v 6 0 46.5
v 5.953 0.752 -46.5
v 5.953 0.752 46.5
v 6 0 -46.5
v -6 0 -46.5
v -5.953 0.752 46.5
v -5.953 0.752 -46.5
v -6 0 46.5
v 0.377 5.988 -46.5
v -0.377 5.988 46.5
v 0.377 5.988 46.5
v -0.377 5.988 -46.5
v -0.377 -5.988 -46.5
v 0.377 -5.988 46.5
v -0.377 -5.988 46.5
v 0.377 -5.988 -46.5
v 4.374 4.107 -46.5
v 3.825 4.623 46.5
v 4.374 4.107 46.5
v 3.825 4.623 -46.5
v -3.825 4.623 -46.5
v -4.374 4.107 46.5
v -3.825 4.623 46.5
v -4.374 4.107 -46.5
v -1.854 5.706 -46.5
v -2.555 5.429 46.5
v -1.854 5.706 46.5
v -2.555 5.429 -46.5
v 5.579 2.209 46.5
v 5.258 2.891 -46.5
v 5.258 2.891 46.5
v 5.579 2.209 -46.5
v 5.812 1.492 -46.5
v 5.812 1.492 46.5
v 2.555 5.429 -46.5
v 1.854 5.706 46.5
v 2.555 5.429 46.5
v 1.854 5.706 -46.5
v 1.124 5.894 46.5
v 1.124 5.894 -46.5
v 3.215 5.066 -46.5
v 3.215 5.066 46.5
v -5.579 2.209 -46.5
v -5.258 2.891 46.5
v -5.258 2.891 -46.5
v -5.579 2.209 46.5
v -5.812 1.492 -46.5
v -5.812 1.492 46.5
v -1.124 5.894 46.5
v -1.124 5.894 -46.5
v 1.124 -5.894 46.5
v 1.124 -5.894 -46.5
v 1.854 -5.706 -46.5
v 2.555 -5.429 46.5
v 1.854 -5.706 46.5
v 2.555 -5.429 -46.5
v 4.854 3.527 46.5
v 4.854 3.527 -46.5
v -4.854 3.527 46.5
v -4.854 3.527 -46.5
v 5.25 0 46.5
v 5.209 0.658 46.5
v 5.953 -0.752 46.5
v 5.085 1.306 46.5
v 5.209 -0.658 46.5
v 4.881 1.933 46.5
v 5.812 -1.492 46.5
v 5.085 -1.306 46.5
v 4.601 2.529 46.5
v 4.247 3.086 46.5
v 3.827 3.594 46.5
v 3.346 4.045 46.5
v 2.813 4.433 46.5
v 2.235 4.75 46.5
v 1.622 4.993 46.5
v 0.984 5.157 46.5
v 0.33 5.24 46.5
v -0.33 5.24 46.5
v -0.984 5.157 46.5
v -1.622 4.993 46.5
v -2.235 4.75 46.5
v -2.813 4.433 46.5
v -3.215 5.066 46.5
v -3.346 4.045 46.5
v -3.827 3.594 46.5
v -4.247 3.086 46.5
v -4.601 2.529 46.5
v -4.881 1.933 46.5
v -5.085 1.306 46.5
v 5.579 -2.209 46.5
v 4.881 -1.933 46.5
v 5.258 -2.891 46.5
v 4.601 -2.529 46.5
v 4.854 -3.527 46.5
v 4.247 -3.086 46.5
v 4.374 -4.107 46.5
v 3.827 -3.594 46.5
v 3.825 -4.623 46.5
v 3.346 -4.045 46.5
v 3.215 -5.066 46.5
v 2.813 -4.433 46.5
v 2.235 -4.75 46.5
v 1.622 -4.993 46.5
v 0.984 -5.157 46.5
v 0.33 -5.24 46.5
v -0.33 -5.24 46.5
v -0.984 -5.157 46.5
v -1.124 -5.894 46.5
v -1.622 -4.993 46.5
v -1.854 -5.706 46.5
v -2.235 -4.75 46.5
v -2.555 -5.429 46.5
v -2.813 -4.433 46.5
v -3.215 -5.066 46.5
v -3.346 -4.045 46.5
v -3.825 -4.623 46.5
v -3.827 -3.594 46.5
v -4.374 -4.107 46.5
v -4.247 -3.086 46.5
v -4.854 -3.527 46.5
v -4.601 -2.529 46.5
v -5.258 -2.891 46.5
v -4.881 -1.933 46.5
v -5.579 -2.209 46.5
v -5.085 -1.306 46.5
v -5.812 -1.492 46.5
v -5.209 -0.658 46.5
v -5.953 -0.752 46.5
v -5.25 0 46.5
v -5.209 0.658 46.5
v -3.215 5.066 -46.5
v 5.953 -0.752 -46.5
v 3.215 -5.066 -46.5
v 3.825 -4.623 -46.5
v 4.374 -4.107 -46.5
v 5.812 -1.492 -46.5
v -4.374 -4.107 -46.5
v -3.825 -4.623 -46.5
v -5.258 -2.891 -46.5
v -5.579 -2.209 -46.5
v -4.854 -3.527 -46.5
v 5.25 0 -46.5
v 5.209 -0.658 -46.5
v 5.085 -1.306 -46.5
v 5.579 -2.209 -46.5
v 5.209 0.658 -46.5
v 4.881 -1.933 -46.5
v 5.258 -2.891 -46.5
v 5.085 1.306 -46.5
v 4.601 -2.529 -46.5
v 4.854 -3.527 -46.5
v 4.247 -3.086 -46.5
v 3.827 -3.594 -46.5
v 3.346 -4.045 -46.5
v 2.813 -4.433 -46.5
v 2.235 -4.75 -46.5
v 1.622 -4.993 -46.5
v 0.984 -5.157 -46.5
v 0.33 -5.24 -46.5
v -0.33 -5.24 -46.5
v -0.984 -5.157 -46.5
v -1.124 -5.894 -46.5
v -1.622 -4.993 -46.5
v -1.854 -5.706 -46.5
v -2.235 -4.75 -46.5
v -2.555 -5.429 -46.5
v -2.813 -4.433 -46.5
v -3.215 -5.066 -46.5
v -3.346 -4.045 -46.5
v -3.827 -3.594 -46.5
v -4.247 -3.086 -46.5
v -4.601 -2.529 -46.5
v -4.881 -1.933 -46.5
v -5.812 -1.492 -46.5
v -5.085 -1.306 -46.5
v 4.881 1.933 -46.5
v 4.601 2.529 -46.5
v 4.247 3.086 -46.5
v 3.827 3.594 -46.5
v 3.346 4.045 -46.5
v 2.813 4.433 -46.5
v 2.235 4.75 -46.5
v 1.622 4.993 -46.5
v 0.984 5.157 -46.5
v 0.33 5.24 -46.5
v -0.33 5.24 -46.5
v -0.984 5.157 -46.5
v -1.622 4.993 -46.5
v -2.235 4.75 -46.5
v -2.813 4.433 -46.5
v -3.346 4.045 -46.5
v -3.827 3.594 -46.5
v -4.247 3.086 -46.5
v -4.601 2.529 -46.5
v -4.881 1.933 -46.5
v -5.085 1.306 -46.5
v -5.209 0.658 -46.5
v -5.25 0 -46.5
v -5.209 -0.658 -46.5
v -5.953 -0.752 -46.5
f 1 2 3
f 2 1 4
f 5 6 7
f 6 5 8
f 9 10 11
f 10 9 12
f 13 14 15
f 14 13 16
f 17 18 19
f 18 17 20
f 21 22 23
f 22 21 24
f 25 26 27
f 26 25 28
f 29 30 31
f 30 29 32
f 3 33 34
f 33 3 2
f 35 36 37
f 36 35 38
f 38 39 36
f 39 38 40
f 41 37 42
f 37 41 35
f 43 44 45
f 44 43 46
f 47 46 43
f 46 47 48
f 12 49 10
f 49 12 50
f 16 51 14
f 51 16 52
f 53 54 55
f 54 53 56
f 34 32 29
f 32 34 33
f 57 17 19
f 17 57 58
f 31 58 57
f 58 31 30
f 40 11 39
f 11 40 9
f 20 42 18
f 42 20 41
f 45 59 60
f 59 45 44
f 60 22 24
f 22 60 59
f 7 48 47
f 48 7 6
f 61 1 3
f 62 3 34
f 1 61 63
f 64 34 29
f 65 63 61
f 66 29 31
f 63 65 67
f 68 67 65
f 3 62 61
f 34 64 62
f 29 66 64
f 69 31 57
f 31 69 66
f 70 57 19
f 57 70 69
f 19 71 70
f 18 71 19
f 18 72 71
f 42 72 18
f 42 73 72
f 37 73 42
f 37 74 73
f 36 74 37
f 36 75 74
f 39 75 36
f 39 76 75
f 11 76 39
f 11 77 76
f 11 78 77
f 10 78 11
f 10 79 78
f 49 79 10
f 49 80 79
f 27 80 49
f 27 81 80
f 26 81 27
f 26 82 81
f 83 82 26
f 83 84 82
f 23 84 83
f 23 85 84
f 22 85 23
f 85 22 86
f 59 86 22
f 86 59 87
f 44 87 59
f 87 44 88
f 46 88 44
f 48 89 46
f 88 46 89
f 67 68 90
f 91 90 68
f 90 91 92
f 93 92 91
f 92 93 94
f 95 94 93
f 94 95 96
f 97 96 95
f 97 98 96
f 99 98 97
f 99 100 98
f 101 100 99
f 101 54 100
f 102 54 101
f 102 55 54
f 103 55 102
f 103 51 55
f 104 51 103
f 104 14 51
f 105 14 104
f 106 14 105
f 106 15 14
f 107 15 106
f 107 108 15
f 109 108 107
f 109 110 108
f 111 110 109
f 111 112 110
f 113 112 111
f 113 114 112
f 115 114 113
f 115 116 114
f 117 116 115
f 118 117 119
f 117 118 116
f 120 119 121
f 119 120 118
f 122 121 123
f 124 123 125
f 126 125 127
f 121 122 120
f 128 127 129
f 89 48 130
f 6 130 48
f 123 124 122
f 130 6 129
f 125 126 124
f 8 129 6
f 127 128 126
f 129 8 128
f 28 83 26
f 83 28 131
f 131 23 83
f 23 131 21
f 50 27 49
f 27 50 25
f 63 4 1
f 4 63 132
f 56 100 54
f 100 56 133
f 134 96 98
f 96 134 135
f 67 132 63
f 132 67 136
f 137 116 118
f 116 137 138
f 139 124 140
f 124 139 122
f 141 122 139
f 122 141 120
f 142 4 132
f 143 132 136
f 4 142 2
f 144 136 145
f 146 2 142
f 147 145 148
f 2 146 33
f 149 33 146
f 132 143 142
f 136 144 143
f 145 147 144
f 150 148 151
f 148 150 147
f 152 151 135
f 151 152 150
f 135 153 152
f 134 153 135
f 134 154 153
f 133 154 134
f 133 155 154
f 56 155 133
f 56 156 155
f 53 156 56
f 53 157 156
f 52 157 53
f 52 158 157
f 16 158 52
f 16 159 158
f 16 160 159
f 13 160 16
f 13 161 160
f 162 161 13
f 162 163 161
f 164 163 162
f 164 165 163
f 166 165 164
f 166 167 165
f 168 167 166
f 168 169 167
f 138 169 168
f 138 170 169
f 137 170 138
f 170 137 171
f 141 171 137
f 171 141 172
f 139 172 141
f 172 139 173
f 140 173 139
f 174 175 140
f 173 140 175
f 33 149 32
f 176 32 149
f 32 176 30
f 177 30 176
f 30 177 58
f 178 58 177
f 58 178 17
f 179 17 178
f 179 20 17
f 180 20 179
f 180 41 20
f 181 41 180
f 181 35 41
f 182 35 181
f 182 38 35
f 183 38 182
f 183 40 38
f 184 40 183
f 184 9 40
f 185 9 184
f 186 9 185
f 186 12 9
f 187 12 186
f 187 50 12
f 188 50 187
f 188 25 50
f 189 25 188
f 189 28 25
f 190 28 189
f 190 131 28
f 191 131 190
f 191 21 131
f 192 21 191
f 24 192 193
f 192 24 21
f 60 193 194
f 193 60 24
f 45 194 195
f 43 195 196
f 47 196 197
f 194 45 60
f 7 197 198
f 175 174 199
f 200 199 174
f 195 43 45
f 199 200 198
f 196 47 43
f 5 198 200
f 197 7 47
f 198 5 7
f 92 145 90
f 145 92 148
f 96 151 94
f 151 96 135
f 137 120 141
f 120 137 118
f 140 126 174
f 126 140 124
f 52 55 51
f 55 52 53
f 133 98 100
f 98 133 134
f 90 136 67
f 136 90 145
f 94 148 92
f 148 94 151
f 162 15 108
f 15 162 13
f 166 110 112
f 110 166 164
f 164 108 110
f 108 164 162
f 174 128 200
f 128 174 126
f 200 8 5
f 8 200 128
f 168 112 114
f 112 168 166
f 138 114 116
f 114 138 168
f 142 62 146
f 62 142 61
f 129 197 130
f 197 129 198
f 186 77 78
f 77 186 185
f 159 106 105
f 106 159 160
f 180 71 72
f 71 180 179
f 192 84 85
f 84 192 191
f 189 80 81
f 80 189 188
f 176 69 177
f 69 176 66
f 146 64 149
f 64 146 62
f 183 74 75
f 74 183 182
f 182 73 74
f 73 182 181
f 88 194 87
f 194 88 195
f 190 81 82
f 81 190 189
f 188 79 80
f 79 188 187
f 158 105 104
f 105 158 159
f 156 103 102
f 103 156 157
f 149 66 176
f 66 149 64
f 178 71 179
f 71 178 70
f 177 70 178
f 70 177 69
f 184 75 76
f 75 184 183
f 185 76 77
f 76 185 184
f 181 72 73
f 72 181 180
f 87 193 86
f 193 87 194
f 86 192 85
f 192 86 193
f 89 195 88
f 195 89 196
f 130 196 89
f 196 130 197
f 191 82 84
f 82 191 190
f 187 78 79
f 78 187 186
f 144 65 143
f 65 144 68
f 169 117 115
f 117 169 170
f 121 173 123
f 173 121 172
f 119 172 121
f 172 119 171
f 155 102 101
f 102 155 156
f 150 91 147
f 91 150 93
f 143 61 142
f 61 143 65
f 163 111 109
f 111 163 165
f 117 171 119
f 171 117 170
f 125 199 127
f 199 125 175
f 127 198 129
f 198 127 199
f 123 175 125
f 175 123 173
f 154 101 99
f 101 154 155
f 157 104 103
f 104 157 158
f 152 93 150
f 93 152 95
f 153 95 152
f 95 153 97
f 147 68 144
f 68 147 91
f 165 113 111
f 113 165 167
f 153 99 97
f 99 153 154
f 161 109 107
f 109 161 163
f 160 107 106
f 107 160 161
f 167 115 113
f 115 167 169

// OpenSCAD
$fn = 50;


difference() {
	union() {
		translate(v = [0, 0, -46.5000000000]) {
			cylinder(h = 93, r = 6.0000000000);
		}
	}
	union() {
		translate(v = [0, 0, -100.0000000000]) {
			cylinder(h = 200, r = 5.2500000000);
		}
	}
}
